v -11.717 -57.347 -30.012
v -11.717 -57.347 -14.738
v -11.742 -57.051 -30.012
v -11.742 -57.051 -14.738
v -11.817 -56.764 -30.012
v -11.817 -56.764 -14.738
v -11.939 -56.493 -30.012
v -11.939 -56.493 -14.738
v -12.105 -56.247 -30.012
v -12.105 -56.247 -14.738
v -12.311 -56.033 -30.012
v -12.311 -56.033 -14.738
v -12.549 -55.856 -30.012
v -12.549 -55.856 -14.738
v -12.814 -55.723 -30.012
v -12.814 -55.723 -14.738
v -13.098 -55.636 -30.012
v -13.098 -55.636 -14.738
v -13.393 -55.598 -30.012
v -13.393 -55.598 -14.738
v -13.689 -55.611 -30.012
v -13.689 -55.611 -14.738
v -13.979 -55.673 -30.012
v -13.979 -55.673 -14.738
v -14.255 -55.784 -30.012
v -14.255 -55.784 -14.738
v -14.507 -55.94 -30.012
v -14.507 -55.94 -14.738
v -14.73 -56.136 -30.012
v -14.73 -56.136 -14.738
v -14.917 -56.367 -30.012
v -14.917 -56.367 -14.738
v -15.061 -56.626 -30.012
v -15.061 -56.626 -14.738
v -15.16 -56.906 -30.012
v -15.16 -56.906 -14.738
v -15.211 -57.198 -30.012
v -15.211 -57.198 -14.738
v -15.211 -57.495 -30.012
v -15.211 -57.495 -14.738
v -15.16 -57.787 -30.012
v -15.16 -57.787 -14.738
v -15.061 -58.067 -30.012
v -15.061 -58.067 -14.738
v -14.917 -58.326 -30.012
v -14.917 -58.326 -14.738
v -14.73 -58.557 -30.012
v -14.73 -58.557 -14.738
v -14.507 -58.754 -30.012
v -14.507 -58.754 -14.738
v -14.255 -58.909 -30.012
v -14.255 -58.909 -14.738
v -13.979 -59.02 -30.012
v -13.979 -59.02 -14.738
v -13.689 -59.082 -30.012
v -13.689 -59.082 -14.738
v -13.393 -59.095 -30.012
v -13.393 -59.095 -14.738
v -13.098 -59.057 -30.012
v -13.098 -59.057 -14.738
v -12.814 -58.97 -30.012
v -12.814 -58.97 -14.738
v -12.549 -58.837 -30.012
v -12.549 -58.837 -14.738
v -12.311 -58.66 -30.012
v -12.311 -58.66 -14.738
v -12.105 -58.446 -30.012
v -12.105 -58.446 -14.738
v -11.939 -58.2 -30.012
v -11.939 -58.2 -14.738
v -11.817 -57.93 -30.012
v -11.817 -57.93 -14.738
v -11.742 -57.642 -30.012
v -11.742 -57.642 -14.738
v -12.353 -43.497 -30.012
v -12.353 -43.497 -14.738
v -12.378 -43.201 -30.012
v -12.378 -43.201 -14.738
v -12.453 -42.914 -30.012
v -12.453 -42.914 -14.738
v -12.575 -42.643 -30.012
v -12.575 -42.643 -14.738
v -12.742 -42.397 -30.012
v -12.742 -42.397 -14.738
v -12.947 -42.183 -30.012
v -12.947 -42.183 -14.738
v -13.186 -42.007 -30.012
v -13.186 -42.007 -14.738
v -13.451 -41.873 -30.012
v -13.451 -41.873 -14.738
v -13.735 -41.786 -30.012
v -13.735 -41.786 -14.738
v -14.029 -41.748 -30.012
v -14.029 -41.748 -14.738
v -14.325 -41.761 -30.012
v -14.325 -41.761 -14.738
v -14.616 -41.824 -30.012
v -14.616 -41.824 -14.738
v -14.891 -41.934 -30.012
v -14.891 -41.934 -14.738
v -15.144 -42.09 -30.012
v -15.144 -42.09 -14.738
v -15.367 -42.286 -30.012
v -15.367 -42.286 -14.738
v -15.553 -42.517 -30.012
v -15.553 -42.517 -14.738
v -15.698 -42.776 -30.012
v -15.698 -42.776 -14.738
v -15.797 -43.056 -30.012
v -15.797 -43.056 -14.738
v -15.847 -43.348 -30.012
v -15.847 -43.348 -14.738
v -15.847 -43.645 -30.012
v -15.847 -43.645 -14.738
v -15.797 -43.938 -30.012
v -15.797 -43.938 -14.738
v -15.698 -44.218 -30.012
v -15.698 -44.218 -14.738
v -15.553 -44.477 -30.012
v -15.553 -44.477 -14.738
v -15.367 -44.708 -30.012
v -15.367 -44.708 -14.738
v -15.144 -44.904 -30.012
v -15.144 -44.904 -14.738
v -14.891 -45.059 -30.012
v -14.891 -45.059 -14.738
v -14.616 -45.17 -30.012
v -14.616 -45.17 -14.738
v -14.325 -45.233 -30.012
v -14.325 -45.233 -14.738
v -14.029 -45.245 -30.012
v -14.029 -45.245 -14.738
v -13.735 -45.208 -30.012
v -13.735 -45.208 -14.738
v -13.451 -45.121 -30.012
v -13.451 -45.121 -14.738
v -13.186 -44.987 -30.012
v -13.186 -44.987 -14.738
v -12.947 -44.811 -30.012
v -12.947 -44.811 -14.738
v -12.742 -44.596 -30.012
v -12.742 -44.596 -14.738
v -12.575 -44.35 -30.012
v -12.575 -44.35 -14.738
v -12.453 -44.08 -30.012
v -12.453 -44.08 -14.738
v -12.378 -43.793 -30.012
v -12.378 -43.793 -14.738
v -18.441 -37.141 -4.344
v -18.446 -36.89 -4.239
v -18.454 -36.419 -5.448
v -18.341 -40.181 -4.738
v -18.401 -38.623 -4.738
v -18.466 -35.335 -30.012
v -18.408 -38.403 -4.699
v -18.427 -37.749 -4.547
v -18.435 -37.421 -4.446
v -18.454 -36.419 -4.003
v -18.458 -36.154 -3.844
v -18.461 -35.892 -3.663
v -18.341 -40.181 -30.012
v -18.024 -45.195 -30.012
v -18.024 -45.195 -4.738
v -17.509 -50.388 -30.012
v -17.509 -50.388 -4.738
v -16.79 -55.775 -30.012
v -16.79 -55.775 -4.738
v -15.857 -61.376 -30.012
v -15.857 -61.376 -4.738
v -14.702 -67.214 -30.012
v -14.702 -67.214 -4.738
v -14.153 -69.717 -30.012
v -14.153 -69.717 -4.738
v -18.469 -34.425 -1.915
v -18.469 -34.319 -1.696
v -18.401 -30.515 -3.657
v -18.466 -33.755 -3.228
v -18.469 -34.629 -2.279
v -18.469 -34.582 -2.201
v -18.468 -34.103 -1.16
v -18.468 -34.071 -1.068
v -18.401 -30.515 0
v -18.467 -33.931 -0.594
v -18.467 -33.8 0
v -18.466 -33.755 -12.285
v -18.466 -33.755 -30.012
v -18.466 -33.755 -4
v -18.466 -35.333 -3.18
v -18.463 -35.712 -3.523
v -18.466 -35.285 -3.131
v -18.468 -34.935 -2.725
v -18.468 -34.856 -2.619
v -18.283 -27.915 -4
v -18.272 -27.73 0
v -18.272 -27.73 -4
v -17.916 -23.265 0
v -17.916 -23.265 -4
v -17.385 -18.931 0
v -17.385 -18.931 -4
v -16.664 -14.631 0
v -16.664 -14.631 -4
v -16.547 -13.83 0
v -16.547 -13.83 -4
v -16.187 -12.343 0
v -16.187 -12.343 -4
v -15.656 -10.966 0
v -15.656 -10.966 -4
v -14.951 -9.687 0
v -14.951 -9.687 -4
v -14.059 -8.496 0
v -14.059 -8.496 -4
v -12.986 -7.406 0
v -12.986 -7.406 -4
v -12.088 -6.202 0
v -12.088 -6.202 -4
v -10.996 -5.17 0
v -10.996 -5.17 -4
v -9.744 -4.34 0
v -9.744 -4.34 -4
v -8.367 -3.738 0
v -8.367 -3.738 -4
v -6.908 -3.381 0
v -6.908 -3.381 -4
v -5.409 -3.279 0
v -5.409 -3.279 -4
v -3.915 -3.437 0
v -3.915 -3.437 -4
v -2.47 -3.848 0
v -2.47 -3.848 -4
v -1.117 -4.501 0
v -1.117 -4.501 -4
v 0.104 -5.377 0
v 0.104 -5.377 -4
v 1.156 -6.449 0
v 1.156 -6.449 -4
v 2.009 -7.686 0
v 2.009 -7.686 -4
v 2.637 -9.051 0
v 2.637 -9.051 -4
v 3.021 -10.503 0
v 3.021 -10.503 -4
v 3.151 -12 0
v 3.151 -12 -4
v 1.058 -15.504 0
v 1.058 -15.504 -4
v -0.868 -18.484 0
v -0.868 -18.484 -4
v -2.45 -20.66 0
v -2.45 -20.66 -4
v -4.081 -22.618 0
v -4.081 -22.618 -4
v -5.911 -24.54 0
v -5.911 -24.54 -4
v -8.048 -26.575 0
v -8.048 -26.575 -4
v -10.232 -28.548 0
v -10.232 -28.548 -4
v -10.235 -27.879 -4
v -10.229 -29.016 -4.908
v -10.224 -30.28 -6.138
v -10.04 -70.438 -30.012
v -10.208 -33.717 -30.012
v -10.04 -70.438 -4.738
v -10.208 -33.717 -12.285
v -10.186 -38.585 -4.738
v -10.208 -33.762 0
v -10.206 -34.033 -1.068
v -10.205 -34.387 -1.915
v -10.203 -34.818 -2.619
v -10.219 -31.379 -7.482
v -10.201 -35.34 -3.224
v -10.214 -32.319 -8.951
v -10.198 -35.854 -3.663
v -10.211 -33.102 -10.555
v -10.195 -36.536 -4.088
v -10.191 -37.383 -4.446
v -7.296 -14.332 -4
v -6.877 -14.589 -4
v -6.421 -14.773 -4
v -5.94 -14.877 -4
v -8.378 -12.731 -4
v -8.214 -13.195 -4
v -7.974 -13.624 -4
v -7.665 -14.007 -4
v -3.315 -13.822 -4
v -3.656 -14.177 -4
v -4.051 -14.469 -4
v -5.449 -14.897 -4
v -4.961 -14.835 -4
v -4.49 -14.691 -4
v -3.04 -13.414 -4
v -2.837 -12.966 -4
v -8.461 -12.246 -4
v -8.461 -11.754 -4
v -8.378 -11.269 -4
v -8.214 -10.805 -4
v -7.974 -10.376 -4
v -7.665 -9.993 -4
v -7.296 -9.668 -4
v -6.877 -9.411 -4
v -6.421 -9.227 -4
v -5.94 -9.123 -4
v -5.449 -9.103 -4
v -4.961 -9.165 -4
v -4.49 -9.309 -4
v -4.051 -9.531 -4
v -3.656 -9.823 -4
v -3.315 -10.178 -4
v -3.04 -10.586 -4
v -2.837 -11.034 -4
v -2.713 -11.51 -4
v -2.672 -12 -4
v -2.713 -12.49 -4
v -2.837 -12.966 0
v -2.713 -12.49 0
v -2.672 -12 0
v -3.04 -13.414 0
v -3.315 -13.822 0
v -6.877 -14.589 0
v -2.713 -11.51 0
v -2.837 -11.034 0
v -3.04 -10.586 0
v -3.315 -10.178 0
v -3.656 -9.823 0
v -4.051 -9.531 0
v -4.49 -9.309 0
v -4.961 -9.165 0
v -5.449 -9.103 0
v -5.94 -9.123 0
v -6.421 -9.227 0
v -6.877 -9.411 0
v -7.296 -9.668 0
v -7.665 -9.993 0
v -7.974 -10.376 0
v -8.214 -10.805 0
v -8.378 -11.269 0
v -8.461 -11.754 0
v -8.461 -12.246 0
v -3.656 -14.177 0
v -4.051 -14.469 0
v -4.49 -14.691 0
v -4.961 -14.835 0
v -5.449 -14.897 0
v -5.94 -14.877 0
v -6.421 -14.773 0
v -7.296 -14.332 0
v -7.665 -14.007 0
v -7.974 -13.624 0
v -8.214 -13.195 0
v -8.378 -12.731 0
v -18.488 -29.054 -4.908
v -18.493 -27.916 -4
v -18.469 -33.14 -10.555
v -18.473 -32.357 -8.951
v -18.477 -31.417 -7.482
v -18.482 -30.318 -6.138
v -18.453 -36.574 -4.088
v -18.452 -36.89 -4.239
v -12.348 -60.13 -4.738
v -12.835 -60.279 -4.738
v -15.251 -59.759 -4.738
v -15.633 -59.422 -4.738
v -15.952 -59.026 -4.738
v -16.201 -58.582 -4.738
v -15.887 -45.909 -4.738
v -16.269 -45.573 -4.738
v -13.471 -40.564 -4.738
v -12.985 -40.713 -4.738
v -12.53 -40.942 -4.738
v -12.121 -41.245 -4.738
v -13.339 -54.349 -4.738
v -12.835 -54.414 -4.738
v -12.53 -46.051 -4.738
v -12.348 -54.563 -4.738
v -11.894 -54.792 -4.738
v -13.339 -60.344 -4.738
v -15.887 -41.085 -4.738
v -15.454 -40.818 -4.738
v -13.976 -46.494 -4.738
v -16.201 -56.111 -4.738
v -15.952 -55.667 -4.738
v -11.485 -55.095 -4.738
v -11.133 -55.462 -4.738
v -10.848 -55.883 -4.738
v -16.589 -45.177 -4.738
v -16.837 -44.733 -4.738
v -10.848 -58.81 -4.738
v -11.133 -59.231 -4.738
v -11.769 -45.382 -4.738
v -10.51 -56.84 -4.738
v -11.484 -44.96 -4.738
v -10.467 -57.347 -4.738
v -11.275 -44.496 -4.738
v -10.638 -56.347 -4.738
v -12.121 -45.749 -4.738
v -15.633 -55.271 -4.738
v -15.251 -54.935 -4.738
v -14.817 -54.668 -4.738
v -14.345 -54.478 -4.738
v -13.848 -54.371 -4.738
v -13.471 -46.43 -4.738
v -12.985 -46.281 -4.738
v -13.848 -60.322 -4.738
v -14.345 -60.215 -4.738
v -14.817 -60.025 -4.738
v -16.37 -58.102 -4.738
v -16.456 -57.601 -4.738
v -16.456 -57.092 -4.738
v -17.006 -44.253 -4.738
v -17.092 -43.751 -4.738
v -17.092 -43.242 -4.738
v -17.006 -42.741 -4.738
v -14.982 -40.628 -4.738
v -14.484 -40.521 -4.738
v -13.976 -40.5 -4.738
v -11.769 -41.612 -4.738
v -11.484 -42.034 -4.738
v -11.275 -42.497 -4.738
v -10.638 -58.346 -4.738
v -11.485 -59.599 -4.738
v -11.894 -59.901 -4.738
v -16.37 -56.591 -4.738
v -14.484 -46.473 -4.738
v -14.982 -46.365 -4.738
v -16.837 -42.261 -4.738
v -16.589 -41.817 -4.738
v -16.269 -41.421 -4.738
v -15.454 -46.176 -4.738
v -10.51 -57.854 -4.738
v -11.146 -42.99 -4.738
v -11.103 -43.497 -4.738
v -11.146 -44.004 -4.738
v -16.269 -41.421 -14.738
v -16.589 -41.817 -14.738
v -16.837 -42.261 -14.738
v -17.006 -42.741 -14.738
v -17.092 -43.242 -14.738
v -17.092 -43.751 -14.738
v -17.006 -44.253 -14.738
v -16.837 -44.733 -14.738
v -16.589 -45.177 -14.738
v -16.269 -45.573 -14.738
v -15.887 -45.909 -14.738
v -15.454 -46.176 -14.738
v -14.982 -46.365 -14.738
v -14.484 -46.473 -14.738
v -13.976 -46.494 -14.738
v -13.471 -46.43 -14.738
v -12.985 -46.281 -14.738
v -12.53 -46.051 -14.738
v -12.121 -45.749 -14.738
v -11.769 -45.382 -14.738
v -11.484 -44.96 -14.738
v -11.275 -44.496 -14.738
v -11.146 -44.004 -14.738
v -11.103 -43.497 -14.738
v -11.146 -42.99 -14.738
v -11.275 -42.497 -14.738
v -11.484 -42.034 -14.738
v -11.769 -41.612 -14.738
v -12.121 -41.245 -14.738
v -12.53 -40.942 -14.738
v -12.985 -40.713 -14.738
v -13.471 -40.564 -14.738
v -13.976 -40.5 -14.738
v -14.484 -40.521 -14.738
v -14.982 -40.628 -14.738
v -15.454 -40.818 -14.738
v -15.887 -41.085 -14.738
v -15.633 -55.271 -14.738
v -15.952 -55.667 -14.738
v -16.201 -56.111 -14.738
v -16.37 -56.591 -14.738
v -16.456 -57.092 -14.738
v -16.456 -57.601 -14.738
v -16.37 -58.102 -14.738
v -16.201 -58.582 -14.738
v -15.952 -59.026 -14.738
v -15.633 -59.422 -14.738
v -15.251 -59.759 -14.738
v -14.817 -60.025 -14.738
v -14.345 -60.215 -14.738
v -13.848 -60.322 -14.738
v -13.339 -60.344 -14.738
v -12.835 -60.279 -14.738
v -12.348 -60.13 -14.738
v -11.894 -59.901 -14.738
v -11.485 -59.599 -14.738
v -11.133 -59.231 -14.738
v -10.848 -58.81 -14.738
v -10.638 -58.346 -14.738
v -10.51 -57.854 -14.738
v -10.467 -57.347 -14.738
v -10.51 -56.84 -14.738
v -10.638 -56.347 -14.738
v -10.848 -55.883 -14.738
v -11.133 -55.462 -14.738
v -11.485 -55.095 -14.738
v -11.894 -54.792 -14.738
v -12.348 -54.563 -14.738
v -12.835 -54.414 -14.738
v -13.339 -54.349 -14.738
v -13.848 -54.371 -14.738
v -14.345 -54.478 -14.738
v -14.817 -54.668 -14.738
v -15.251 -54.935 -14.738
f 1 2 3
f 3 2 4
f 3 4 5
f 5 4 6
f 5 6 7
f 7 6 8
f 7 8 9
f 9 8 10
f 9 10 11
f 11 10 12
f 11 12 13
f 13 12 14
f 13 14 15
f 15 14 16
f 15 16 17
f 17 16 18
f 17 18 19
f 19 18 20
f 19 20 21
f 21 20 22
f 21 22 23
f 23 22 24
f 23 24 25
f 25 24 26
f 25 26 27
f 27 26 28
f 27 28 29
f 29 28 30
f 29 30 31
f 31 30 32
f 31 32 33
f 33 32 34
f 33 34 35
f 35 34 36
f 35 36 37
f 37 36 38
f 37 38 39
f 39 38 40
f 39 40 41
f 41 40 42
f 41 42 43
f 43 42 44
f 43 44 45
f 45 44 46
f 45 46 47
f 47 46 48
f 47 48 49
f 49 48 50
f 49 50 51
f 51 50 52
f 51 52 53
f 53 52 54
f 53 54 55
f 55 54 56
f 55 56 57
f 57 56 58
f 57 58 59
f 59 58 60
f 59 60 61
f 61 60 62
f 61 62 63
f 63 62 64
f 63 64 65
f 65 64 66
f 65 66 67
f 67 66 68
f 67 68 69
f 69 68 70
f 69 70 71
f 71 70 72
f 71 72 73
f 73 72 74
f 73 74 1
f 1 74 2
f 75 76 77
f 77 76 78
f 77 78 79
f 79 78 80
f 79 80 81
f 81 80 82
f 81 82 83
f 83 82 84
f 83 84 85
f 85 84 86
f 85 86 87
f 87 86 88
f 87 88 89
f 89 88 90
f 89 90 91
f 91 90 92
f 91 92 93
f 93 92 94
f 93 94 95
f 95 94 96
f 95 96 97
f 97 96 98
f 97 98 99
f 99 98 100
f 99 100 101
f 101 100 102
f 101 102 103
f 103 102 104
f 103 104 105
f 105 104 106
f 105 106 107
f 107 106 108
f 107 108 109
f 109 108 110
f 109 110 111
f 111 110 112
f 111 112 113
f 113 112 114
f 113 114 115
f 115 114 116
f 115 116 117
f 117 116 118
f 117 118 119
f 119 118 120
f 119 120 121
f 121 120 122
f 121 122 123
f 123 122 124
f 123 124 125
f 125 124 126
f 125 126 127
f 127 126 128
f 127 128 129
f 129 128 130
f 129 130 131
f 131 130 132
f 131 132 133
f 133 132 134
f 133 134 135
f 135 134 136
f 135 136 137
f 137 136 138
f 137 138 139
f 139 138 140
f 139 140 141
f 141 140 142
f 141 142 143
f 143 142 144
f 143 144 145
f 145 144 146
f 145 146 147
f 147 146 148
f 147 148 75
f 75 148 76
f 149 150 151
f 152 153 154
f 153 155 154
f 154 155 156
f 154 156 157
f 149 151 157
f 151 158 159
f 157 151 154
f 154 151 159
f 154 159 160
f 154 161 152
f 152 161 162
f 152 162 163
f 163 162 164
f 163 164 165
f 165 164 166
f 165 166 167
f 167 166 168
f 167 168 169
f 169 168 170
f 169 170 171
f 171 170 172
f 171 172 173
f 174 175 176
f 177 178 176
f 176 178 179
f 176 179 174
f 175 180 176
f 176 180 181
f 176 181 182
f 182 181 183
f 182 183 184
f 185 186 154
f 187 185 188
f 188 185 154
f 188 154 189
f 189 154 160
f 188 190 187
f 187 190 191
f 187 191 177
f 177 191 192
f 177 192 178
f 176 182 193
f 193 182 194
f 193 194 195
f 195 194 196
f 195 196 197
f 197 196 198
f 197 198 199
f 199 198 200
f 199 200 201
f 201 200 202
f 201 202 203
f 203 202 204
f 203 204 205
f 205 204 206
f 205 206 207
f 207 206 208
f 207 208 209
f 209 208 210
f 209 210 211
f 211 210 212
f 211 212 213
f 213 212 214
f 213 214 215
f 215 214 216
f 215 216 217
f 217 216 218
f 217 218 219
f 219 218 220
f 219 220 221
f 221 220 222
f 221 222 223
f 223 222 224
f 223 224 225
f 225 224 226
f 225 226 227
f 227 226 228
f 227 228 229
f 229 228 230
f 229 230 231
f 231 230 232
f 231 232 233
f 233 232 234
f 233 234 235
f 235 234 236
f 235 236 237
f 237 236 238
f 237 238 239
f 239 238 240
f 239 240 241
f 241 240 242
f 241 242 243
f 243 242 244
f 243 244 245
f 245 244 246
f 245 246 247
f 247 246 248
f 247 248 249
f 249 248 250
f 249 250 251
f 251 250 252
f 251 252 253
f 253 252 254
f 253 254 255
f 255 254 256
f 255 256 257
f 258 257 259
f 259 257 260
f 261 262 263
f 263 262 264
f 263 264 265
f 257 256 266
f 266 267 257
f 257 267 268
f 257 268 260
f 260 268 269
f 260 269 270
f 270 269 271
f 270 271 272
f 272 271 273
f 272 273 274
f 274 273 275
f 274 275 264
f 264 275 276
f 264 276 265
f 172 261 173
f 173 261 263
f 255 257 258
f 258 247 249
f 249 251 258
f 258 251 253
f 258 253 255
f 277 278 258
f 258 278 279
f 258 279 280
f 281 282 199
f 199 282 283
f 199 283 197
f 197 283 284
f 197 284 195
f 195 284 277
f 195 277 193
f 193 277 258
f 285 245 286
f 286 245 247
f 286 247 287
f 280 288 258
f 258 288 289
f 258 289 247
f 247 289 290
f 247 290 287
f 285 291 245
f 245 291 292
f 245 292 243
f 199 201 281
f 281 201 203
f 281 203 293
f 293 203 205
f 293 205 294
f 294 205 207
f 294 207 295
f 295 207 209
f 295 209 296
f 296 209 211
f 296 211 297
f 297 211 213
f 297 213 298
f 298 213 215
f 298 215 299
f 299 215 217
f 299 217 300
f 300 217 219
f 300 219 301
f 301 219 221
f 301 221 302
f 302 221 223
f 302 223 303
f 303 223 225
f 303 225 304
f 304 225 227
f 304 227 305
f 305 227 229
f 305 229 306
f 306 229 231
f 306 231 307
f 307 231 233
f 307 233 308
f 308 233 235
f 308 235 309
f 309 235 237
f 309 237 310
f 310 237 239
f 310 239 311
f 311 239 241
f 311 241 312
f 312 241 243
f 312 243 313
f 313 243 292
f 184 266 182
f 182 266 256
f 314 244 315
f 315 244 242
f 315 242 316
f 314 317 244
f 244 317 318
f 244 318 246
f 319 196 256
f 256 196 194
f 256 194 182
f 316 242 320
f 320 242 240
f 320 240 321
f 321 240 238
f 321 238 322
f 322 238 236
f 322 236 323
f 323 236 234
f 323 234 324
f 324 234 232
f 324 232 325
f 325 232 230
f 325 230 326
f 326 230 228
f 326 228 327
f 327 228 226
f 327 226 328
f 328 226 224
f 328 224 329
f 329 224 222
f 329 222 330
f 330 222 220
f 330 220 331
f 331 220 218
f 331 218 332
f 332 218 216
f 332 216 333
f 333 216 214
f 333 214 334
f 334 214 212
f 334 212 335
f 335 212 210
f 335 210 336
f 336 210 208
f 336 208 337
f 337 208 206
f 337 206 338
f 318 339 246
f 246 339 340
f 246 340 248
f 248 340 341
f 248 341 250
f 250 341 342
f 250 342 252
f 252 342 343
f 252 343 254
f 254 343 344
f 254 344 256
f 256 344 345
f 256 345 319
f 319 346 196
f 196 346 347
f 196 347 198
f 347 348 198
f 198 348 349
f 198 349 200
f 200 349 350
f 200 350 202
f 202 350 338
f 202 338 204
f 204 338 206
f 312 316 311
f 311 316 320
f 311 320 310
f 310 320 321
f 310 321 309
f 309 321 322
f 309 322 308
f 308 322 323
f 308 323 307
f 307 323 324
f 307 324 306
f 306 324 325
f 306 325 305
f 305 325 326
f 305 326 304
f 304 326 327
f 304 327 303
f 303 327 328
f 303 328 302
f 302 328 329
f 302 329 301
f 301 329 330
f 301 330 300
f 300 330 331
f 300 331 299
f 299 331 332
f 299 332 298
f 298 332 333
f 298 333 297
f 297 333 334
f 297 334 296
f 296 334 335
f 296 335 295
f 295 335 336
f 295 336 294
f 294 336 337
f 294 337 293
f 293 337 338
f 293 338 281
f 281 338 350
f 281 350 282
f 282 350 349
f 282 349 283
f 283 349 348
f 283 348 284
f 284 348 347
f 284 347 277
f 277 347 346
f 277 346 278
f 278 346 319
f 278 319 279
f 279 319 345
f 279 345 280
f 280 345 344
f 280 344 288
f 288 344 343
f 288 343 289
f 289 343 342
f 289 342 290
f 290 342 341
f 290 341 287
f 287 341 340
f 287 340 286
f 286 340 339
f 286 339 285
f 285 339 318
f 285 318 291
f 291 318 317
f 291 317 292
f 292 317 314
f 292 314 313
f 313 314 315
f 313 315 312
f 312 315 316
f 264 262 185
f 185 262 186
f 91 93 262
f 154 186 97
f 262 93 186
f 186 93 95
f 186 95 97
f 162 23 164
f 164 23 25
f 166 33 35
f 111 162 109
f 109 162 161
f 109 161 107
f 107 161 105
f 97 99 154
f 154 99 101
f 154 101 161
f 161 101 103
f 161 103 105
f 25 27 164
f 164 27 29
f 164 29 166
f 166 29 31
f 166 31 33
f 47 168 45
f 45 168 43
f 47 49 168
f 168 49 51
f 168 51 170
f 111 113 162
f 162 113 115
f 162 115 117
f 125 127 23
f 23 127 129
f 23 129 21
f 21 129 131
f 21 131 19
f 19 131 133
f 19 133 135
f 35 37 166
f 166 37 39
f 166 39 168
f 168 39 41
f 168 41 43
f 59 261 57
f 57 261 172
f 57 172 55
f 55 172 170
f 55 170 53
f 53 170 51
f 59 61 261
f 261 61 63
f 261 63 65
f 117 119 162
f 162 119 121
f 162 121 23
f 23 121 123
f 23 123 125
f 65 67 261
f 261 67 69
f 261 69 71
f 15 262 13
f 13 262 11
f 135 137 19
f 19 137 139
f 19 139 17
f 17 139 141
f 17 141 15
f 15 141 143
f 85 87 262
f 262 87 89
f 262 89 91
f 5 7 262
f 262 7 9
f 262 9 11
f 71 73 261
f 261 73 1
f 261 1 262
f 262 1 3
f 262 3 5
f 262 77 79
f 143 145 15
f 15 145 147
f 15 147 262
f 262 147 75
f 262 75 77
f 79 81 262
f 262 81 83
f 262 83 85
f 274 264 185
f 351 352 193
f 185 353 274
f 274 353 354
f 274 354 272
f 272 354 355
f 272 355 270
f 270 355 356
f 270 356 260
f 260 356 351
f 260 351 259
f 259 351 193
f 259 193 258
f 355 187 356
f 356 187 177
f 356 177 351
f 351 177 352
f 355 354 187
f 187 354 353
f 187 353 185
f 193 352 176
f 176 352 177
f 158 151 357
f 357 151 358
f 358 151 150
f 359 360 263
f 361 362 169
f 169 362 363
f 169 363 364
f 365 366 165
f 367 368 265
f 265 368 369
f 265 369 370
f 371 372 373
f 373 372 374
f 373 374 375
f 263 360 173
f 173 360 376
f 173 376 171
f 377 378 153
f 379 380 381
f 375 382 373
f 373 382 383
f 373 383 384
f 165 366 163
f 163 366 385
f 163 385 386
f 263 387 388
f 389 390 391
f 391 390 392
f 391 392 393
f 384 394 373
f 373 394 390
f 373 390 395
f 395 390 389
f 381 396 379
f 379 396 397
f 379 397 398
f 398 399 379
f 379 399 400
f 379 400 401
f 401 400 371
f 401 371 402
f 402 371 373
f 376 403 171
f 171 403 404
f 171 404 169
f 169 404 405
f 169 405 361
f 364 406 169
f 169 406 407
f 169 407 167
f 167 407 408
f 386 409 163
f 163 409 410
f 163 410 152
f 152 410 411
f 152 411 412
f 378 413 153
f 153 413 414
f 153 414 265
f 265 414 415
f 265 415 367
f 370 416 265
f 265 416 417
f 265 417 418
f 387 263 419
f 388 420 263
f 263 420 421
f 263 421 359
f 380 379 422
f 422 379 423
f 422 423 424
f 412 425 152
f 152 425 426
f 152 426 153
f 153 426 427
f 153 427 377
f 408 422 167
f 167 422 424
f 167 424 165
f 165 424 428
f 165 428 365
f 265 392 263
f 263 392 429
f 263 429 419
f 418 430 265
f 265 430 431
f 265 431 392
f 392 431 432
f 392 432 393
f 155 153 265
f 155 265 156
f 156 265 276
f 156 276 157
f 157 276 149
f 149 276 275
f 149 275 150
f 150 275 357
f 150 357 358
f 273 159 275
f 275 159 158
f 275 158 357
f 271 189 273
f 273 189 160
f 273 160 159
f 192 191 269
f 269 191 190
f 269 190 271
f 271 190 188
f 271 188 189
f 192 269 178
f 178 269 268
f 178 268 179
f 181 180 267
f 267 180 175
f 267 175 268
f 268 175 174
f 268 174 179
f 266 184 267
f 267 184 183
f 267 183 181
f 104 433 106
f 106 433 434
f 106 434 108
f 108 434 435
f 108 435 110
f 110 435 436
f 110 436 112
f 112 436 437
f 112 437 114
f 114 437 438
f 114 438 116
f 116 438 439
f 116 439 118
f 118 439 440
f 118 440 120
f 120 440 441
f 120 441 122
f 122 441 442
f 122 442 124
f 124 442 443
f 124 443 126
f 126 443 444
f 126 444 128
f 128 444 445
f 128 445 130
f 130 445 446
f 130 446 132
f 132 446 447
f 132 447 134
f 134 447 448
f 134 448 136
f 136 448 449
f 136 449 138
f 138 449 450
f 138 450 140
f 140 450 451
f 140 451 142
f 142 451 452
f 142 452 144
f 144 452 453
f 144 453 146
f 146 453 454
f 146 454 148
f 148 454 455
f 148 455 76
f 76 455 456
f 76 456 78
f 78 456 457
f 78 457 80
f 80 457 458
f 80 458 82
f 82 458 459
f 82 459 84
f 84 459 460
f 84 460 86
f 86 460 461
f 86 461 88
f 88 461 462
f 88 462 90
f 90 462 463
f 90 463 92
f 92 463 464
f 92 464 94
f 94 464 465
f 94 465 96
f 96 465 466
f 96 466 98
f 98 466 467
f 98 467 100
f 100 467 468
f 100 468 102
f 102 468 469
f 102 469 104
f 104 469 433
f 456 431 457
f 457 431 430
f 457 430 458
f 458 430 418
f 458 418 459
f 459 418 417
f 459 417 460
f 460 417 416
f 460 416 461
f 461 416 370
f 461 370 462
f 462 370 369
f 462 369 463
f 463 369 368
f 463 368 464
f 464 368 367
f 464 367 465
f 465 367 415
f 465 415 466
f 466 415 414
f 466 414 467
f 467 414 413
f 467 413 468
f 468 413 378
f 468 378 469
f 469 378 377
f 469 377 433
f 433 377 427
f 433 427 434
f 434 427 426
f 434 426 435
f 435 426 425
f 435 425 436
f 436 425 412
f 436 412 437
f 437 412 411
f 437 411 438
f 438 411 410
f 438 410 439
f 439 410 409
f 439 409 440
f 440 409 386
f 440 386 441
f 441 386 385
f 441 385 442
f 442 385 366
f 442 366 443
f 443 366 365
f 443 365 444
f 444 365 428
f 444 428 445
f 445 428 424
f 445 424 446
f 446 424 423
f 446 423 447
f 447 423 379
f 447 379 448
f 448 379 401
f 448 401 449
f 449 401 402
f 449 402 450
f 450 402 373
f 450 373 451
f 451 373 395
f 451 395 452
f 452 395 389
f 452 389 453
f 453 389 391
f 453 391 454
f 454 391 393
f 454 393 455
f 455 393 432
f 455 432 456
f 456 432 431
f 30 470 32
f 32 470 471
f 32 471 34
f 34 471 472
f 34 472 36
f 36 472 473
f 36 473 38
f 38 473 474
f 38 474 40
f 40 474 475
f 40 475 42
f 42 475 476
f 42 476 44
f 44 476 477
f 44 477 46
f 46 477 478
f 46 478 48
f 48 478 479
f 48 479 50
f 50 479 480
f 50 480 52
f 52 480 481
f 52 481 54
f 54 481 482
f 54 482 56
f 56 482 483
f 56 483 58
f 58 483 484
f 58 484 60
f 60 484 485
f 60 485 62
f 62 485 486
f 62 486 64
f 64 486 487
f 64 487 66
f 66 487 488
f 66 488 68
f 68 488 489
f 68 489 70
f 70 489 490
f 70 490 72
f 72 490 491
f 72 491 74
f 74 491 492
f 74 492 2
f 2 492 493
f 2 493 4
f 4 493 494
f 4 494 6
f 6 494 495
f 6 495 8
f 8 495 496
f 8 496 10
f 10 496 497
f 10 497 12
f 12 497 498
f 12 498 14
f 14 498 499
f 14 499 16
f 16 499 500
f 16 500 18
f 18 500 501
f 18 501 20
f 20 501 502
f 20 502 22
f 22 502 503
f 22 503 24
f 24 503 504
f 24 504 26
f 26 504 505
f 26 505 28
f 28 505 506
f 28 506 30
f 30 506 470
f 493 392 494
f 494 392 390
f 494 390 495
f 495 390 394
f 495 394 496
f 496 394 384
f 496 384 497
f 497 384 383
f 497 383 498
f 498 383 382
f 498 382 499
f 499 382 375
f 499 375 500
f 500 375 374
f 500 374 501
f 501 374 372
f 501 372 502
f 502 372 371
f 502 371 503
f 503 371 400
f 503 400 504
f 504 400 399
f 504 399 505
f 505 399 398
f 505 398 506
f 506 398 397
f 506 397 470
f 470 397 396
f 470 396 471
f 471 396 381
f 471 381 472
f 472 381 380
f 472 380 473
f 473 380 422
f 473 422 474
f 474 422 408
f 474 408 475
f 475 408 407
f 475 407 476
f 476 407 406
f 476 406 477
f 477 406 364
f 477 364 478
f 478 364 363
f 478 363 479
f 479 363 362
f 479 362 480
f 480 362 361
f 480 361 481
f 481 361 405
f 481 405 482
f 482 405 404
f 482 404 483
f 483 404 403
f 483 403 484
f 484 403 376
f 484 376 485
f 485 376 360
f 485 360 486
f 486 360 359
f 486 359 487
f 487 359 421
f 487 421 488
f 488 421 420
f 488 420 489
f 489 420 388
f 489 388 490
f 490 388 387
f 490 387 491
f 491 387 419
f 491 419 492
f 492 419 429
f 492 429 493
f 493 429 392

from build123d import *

# Parameters (mm, degrees)
SKETCH1_R           = 2.9
BOSS_EXTRUDE1_DEPTH = 4
BOSS_EXTRUDE2_DEPTH = 26.012432
SKETCH3_R           = 1.75
CUT_EXTRUDE1_DEPTH  = 79.761768867
BOSS_EXTRUDE5_DEPTH = 8.258541
CUT_EXTRUDE2_DEPTH  = 78.706037614
SKETCH6_R           = 3
CUT_EXTRUDE3_DEPTH  = 10


with BuildPart() as part:
    # Sketch1 → Boss-Extrude1 (new body)
    with BuildSketch(Plane.XY):
        with BuildLine():
            Line((-14.153385189, -69.716871134), (-10.039841479, -70.438427685))
            Line((-10.039841479, -70.438427685), (-10.231600818, -28.548135162))
            add(Edge.make_bspline(
                [(3.150526507, -12), (1.121426745, -15.448537633), (-2.522354698, -21.641292501), (-7.864373324, -26.42729642), (-10.231600818, -28.548135162)],
                knots=[0, 0, 0, 0, 0.556866484, 1, 1, 1, 1], degree=3))
            ThreePointArc((3.150526507, -12), (-3.18362895, -3.611112101), (-12.986183722, -7.406488955))
            add(Edge.make_bspline(
                [(-16.663916234, -14.630806425), (-16.157795835, -10.23676377), (-12.986183722, -7.406488955)],
                knots=[0, 0, 0, 1, 1, 1], degree=2))
            add(Edge.make_bspline(
                [(-16.663916234, -14.630806425), (-17.667702323, -19.881251045), (-18.220131563, -25.189037493), (-18.401311599, -30.514562532)],
                knots=[0, 0, 0, 0, 0.288118642, 0.288118642, 0.288118642, 0.288118642], degree=3))
            add(Edge.make_bspline(
                [(-18.401311599, -30.514562532), (-18.848969857, -43.672829442), (-17.03022033, -56.93938717), (-14.153385189, -69.716871134)],
                knots=[0.288118642, 0.288118642, 0.288118642, 0.288118642, 1, 1, 1, 1], degree=3))
        make_face()
        with Locations((-5.571628032, -12)):
            Circle(SKETCH1_R, mode=Mode.SUBTRACT)
    extrude(amount=-BOSS_EXTRUDE1_DEPTH)

    # Sketch2 → Boss-Extrude2 (add)
    with BuildSketch(Plane(origin=(0, 0, -4), x_dir=(-1, 0, 0), z_dir=(0, 0, -1))):
        with BuildLine():
            Line((10.207939206, -33.717071631), (18.466393507, -33.754875992))
            add(Edge.make_bspline(
                [(14.153385189, -69.716871134), (16.794208846, -57.987633874), (18.543433317, -45.846277061), (18.466393507, -33.754875992)],
                knots=[0.288118642, 0.288118642, 0.288118642, 0.288118642, 0.941598261, 0.941598261, 0.941598261, 0.941598261], degree=3))
            Line((14.153385189, -69.716871134), (10.039841479, -70.438427685))
            Line((10.039841479, -70.438427685), (10.207939206, -33.717071631))
        make_face()
    extrude(amount=BOSS_EXTRUDE2_DEPTH)

    # Sketch3 → Cut-Extrude1 (cut, through all)
    with BuildSketch(Plane.XY):
        with Locations((-14.103208948, -43.496863521)):
            Circle(SKETCH3_R)
        with Locations((-13.466819568, -57.346536005)):
            Circle(SKETCH3_R)
    extrude(amount=-CUT_EXTRUDE1_DEPTH, mode=Mode.SUBTRACT)

    # Sketch4 → Boss-Extrude5 (add)
    with BuildSketch(Plane(origin=(-10.362067217, -0.047433977, 0), x_dir=(0, 0, -1), z_dir=(0.9999895226985053, 0.004577607804942551, 0))):
        with BuildLine():
            Line((4, -27.831413473), (2.736644913, -37.390501041))
            Line((2.736644913, -37.390501041), (12.284980679, -33.669990424))
            add(Edge.make_bspline(
                [(4, -27.831413473), (7.157671382, -32.153592381), (12.284980679, -33.669990424)],
                knots=[0, 0, 0, 1, 1, 1], degree=2))
        make_face()
    extrude(amount=-BOSS_EXTRUDE5_DEPTH)

    # Sketch5 → Cut-Extrude2 (cut, through all)
    with BuildSketch(Plane(origin=(-10.362067217, -0.047433977, 0), x_dir=(0, 0, -1), z_dir=(0.9999895226985053, 0.004577607804942551, 0))):
        with BuildLine():
            Line((4.737663573, -38.538106349), (4.737663573, -70.391731224))
            Line((4.737663573, -70.391731224), (0, -70.391731224))
            Line((0, -70.391731224), (0, -33.715344655))
            add(Edge.make_bspline(
                [(0, -33.715344655), (4.079743683, -34.458317421), (4.737663573, -38.538106349)],
                knots=[0, 0, 0, 1, 1, 1], degree=2))
        make_face()
    extrude(amount=-CUT_EXTRUDE2_DEPTH, mode=Mode.SUBTRACT)

    # Sketch6 → Cut-Extrude3 (cut)
    with BuildSketch(Plane.XY.offset(-4.737663573)):
        with Locations((-13.466819568, -57.346536005)):
            Circle(SKETCH6_R)
        with Locations((-14.103208948, -43.496863521)):
            Circle(SKETCH6_R)
    extrude(amount=-CUT_EXTRUDE3_DEPTH, mode=Mode.SUBTRACT)


solid = part.part
